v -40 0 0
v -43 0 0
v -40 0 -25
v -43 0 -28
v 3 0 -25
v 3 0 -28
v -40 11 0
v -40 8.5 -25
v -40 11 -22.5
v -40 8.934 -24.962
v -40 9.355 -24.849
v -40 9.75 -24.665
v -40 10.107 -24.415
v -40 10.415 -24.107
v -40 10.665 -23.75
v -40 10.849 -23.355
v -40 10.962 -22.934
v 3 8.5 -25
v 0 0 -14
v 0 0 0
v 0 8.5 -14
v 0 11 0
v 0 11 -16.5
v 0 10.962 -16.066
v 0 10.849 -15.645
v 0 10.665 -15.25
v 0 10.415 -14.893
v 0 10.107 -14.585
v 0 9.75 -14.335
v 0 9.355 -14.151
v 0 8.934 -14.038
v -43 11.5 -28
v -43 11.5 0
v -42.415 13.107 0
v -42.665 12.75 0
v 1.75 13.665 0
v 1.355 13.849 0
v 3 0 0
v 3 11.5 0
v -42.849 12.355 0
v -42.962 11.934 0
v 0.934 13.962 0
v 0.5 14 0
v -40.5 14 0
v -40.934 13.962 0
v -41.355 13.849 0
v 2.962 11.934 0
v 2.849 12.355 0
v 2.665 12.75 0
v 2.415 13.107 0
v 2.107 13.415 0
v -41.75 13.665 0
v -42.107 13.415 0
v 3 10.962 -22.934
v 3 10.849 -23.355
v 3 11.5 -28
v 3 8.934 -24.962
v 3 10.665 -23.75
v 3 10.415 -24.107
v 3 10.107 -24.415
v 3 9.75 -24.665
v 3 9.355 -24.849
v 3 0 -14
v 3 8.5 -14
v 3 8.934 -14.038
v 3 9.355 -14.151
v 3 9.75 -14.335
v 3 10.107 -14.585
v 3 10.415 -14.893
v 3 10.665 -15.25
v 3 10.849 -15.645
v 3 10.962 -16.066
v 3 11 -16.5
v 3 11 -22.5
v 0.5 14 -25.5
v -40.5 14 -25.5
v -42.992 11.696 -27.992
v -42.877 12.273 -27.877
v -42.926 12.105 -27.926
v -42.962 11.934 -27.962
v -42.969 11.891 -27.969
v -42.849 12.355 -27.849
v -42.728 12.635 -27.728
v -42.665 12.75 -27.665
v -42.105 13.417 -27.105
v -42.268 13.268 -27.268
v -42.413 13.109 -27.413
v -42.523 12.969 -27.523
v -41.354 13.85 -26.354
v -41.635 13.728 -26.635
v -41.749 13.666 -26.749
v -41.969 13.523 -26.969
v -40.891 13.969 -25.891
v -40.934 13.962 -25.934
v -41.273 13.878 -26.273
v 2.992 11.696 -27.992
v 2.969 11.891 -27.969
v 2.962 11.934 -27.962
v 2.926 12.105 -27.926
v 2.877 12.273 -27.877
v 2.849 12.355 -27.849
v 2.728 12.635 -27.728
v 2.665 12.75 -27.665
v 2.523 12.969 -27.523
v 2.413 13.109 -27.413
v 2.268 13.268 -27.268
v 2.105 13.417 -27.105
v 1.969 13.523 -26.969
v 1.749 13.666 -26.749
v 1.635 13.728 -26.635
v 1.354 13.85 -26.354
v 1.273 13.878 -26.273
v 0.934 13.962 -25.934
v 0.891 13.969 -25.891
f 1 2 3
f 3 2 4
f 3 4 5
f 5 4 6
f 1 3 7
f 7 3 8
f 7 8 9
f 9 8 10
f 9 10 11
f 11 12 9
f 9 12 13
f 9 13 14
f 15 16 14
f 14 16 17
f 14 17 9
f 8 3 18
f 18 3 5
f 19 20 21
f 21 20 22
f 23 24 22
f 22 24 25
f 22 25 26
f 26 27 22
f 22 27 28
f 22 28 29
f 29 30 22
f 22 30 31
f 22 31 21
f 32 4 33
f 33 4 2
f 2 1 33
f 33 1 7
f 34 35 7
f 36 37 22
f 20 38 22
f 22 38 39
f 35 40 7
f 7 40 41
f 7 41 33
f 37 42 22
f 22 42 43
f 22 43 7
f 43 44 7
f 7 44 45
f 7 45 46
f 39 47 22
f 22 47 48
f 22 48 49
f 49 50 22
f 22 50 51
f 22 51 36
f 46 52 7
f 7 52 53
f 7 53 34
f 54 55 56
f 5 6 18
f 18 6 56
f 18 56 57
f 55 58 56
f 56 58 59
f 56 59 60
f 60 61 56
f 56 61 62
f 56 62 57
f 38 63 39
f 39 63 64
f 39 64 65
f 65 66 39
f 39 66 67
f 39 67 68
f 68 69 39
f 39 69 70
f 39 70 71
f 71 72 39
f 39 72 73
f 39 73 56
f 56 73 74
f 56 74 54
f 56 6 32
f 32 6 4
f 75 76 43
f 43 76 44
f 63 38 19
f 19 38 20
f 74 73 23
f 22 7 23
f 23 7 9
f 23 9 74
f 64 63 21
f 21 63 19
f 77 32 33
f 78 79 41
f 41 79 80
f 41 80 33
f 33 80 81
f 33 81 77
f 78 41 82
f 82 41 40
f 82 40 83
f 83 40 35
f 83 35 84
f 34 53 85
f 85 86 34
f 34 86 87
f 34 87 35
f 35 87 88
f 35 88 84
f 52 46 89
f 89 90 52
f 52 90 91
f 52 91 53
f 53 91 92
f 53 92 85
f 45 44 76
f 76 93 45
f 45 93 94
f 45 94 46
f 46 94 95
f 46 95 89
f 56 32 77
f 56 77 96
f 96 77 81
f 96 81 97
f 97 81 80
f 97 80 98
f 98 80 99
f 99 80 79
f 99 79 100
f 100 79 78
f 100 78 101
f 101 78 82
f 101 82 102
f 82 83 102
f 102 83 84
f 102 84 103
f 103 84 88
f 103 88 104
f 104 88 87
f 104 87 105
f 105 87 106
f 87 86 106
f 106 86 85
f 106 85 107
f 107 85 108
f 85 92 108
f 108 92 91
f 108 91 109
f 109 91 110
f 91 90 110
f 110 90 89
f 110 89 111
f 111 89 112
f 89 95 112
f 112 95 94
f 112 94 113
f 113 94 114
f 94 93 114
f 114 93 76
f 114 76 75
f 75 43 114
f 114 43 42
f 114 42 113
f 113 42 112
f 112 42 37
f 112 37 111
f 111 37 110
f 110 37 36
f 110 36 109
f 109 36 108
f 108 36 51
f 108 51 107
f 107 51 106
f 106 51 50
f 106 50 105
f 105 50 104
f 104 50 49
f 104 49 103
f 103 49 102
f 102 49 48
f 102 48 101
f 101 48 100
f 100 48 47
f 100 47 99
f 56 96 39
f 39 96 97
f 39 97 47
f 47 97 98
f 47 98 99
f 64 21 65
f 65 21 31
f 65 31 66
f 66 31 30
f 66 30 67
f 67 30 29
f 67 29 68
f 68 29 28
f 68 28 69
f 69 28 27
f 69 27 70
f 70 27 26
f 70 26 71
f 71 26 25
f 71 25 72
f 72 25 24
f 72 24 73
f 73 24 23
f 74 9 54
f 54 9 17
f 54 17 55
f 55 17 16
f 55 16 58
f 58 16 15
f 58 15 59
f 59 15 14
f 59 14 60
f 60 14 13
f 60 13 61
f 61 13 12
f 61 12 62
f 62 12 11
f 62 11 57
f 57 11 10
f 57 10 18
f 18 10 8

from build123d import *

# Parameters (mm, degrees)
SALIENTE_EXTRUIR1_DEPTH = 14
CROQUIS2_W              = 40
CROQUIS2_H              = 3
SALIENTE_EXTRUIR2_DEPTH = 25
CROQUIS3_W              = 11
CROQUIS3_H              = 11
CORTAR_EXTRUIR1_DEPTH   = 12
REDONDEO1_R             = 2.5


with BuildPart() as part:
    # Croquis1 → Saliente-Extruir1 (new body)
    with BuildSketch(Plane(origin=(0, 0, 0), x_dir=(1, 0, 0), z_dir=(0, 1, 0))):
        Polygon((-40, 0), (-40, 25), (0, 25), (0, 0), (3, 0), (3, 28), (-43, 28), (-43, 0), align=None)
    extrude(amount=SALIENTE_EXTRUIR1_DEPTH)

    # Croquis2 → Saliente-Extruir2 (add)
    with BuildSketch(Plane.XY.offset(-25)):
        with Locations((-20, 12.5)):
            Rectangle(CROQUIS2_W, CROQUIS2_H)
    extrude(amount=SALIENTE_EXTRUIR2_DEPTH)

    # Croquis3 → Cortar-Extruir1 (cut)
    with BuildSketch(Plane(origin=(3, 0, 0), x_dir=(0, 0, -1), z_dir=(1, 0, 0))):
        with Locations((19.5, 5.5)):
            Rectangle(CROQUIS3_W, CROQUIS3_H)
    extrude(amount=-CORTAR_EXTRUIR1_DEPTH, mode=Mode.SUBTRACT)

    # Redondeo1
    redondeo1_edges = [part.edges().sort_by_distance(p)[0] for p in [
        (-18.5, 11, -25),
        (3, 14, -14),
        (-20, 14, -28),
        (1.5, 11, -14),
        (-43, 14, -14),
    ]]
    fillet(redondeo1_edges, radius=REDONDEO1_R)


solid = part.part
